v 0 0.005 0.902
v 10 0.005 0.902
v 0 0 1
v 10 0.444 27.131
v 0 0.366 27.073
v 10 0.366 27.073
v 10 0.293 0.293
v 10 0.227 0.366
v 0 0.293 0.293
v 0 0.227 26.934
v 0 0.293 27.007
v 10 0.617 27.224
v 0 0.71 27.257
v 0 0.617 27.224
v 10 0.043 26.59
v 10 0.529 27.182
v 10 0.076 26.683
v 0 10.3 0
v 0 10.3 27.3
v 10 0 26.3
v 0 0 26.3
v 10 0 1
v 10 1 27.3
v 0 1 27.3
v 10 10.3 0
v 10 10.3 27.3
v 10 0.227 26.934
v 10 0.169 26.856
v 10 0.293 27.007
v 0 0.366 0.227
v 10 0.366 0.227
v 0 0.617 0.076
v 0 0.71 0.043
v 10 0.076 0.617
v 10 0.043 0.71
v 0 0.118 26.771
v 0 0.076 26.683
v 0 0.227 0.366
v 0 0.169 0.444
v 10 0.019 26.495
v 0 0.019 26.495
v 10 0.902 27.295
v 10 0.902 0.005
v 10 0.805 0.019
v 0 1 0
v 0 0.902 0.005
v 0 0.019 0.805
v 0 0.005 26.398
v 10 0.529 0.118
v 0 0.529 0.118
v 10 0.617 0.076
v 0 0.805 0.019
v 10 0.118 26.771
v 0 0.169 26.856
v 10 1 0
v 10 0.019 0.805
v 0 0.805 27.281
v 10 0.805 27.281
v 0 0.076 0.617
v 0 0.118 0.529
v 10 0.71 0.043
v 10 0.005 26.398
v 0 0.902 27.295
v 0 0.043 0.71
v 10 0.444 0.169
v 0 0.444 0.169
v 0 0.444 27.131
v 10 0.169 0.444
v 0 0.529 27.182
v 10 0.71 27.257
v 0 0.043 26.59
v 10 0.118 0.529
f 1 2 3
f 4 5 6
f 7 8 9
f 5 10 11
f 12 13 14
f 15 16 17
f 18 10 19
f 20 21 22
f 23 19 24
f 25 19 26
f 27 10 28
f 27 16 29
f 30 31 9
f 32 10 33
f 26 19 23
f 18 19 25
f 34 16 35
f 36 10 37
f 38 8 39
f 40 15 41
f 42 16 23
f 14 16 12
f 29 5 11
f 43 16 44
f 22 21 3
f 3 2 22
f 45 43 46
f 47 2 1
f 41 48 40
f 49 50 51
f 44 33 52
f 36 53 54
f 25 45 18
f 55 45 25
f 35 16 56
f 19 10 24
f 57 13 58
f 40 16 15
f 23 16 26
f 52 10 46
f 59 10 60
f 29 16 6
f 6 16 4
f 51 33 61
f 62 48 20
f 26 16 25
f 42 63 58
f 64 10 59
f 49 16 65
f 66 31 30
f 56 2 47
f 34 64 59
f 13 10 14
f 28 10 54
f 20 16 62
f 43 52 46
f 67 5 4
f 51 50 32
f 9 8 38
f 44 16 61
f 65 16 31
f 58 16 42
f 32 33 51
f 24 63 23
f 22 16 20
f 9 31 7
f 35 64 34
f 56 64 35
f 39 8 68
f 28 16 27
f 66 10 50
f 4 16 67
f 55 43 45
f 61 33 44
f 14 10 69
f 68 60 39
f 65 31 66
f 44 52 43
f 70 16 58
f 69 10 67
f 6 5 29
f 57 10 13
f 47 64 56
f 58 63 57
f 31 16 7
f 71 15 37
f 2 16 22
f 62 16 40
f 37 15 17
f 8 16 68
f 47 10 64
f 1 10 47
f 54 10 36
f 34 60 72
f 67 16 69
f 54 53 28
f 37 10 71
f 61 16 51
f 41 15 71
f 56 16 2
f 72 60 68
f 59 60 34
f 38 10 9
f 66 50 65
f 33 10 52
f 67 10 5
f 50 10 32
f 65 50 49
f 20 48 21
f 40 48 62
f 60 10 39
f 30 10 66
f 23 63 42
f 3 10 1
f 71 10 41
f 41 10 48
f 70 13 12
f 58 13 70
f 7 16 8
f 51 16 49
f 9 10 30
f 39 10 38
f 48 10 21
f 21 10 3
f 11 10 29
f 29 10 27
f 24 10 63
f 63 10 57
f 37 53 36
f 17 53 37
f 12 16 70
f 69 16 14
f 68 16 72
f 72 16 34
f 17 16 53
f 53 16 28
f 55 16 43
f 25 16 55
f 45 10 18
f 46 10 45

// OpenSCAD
length = 10; // 158
width = 10.3;
height = 27.3;
curve = 1;

//translate([-188.2, 114.5, -2.05]) {
//    rotate([0, 0, 90]) import("/Users/bschumacher/Downloads/43134889/files/E3-Pro-Case.stl");
//}

module drawer_spacer() {
    twice_curve = curve * 2;
    
#    hull() {
       translate([0, curve, curve]) rotate([0,90,0]) cylinder(h=length, r=curve,$fn=64);
       translate([0, 1, height-1]) rotate([0,90,0]) cylinder(h=length, r=curve, $fn=64);
        translate([0, twice_curve, 0]) cube(size = [length, width - twice_curve, height]);
    }
}

drawer_spacer();
